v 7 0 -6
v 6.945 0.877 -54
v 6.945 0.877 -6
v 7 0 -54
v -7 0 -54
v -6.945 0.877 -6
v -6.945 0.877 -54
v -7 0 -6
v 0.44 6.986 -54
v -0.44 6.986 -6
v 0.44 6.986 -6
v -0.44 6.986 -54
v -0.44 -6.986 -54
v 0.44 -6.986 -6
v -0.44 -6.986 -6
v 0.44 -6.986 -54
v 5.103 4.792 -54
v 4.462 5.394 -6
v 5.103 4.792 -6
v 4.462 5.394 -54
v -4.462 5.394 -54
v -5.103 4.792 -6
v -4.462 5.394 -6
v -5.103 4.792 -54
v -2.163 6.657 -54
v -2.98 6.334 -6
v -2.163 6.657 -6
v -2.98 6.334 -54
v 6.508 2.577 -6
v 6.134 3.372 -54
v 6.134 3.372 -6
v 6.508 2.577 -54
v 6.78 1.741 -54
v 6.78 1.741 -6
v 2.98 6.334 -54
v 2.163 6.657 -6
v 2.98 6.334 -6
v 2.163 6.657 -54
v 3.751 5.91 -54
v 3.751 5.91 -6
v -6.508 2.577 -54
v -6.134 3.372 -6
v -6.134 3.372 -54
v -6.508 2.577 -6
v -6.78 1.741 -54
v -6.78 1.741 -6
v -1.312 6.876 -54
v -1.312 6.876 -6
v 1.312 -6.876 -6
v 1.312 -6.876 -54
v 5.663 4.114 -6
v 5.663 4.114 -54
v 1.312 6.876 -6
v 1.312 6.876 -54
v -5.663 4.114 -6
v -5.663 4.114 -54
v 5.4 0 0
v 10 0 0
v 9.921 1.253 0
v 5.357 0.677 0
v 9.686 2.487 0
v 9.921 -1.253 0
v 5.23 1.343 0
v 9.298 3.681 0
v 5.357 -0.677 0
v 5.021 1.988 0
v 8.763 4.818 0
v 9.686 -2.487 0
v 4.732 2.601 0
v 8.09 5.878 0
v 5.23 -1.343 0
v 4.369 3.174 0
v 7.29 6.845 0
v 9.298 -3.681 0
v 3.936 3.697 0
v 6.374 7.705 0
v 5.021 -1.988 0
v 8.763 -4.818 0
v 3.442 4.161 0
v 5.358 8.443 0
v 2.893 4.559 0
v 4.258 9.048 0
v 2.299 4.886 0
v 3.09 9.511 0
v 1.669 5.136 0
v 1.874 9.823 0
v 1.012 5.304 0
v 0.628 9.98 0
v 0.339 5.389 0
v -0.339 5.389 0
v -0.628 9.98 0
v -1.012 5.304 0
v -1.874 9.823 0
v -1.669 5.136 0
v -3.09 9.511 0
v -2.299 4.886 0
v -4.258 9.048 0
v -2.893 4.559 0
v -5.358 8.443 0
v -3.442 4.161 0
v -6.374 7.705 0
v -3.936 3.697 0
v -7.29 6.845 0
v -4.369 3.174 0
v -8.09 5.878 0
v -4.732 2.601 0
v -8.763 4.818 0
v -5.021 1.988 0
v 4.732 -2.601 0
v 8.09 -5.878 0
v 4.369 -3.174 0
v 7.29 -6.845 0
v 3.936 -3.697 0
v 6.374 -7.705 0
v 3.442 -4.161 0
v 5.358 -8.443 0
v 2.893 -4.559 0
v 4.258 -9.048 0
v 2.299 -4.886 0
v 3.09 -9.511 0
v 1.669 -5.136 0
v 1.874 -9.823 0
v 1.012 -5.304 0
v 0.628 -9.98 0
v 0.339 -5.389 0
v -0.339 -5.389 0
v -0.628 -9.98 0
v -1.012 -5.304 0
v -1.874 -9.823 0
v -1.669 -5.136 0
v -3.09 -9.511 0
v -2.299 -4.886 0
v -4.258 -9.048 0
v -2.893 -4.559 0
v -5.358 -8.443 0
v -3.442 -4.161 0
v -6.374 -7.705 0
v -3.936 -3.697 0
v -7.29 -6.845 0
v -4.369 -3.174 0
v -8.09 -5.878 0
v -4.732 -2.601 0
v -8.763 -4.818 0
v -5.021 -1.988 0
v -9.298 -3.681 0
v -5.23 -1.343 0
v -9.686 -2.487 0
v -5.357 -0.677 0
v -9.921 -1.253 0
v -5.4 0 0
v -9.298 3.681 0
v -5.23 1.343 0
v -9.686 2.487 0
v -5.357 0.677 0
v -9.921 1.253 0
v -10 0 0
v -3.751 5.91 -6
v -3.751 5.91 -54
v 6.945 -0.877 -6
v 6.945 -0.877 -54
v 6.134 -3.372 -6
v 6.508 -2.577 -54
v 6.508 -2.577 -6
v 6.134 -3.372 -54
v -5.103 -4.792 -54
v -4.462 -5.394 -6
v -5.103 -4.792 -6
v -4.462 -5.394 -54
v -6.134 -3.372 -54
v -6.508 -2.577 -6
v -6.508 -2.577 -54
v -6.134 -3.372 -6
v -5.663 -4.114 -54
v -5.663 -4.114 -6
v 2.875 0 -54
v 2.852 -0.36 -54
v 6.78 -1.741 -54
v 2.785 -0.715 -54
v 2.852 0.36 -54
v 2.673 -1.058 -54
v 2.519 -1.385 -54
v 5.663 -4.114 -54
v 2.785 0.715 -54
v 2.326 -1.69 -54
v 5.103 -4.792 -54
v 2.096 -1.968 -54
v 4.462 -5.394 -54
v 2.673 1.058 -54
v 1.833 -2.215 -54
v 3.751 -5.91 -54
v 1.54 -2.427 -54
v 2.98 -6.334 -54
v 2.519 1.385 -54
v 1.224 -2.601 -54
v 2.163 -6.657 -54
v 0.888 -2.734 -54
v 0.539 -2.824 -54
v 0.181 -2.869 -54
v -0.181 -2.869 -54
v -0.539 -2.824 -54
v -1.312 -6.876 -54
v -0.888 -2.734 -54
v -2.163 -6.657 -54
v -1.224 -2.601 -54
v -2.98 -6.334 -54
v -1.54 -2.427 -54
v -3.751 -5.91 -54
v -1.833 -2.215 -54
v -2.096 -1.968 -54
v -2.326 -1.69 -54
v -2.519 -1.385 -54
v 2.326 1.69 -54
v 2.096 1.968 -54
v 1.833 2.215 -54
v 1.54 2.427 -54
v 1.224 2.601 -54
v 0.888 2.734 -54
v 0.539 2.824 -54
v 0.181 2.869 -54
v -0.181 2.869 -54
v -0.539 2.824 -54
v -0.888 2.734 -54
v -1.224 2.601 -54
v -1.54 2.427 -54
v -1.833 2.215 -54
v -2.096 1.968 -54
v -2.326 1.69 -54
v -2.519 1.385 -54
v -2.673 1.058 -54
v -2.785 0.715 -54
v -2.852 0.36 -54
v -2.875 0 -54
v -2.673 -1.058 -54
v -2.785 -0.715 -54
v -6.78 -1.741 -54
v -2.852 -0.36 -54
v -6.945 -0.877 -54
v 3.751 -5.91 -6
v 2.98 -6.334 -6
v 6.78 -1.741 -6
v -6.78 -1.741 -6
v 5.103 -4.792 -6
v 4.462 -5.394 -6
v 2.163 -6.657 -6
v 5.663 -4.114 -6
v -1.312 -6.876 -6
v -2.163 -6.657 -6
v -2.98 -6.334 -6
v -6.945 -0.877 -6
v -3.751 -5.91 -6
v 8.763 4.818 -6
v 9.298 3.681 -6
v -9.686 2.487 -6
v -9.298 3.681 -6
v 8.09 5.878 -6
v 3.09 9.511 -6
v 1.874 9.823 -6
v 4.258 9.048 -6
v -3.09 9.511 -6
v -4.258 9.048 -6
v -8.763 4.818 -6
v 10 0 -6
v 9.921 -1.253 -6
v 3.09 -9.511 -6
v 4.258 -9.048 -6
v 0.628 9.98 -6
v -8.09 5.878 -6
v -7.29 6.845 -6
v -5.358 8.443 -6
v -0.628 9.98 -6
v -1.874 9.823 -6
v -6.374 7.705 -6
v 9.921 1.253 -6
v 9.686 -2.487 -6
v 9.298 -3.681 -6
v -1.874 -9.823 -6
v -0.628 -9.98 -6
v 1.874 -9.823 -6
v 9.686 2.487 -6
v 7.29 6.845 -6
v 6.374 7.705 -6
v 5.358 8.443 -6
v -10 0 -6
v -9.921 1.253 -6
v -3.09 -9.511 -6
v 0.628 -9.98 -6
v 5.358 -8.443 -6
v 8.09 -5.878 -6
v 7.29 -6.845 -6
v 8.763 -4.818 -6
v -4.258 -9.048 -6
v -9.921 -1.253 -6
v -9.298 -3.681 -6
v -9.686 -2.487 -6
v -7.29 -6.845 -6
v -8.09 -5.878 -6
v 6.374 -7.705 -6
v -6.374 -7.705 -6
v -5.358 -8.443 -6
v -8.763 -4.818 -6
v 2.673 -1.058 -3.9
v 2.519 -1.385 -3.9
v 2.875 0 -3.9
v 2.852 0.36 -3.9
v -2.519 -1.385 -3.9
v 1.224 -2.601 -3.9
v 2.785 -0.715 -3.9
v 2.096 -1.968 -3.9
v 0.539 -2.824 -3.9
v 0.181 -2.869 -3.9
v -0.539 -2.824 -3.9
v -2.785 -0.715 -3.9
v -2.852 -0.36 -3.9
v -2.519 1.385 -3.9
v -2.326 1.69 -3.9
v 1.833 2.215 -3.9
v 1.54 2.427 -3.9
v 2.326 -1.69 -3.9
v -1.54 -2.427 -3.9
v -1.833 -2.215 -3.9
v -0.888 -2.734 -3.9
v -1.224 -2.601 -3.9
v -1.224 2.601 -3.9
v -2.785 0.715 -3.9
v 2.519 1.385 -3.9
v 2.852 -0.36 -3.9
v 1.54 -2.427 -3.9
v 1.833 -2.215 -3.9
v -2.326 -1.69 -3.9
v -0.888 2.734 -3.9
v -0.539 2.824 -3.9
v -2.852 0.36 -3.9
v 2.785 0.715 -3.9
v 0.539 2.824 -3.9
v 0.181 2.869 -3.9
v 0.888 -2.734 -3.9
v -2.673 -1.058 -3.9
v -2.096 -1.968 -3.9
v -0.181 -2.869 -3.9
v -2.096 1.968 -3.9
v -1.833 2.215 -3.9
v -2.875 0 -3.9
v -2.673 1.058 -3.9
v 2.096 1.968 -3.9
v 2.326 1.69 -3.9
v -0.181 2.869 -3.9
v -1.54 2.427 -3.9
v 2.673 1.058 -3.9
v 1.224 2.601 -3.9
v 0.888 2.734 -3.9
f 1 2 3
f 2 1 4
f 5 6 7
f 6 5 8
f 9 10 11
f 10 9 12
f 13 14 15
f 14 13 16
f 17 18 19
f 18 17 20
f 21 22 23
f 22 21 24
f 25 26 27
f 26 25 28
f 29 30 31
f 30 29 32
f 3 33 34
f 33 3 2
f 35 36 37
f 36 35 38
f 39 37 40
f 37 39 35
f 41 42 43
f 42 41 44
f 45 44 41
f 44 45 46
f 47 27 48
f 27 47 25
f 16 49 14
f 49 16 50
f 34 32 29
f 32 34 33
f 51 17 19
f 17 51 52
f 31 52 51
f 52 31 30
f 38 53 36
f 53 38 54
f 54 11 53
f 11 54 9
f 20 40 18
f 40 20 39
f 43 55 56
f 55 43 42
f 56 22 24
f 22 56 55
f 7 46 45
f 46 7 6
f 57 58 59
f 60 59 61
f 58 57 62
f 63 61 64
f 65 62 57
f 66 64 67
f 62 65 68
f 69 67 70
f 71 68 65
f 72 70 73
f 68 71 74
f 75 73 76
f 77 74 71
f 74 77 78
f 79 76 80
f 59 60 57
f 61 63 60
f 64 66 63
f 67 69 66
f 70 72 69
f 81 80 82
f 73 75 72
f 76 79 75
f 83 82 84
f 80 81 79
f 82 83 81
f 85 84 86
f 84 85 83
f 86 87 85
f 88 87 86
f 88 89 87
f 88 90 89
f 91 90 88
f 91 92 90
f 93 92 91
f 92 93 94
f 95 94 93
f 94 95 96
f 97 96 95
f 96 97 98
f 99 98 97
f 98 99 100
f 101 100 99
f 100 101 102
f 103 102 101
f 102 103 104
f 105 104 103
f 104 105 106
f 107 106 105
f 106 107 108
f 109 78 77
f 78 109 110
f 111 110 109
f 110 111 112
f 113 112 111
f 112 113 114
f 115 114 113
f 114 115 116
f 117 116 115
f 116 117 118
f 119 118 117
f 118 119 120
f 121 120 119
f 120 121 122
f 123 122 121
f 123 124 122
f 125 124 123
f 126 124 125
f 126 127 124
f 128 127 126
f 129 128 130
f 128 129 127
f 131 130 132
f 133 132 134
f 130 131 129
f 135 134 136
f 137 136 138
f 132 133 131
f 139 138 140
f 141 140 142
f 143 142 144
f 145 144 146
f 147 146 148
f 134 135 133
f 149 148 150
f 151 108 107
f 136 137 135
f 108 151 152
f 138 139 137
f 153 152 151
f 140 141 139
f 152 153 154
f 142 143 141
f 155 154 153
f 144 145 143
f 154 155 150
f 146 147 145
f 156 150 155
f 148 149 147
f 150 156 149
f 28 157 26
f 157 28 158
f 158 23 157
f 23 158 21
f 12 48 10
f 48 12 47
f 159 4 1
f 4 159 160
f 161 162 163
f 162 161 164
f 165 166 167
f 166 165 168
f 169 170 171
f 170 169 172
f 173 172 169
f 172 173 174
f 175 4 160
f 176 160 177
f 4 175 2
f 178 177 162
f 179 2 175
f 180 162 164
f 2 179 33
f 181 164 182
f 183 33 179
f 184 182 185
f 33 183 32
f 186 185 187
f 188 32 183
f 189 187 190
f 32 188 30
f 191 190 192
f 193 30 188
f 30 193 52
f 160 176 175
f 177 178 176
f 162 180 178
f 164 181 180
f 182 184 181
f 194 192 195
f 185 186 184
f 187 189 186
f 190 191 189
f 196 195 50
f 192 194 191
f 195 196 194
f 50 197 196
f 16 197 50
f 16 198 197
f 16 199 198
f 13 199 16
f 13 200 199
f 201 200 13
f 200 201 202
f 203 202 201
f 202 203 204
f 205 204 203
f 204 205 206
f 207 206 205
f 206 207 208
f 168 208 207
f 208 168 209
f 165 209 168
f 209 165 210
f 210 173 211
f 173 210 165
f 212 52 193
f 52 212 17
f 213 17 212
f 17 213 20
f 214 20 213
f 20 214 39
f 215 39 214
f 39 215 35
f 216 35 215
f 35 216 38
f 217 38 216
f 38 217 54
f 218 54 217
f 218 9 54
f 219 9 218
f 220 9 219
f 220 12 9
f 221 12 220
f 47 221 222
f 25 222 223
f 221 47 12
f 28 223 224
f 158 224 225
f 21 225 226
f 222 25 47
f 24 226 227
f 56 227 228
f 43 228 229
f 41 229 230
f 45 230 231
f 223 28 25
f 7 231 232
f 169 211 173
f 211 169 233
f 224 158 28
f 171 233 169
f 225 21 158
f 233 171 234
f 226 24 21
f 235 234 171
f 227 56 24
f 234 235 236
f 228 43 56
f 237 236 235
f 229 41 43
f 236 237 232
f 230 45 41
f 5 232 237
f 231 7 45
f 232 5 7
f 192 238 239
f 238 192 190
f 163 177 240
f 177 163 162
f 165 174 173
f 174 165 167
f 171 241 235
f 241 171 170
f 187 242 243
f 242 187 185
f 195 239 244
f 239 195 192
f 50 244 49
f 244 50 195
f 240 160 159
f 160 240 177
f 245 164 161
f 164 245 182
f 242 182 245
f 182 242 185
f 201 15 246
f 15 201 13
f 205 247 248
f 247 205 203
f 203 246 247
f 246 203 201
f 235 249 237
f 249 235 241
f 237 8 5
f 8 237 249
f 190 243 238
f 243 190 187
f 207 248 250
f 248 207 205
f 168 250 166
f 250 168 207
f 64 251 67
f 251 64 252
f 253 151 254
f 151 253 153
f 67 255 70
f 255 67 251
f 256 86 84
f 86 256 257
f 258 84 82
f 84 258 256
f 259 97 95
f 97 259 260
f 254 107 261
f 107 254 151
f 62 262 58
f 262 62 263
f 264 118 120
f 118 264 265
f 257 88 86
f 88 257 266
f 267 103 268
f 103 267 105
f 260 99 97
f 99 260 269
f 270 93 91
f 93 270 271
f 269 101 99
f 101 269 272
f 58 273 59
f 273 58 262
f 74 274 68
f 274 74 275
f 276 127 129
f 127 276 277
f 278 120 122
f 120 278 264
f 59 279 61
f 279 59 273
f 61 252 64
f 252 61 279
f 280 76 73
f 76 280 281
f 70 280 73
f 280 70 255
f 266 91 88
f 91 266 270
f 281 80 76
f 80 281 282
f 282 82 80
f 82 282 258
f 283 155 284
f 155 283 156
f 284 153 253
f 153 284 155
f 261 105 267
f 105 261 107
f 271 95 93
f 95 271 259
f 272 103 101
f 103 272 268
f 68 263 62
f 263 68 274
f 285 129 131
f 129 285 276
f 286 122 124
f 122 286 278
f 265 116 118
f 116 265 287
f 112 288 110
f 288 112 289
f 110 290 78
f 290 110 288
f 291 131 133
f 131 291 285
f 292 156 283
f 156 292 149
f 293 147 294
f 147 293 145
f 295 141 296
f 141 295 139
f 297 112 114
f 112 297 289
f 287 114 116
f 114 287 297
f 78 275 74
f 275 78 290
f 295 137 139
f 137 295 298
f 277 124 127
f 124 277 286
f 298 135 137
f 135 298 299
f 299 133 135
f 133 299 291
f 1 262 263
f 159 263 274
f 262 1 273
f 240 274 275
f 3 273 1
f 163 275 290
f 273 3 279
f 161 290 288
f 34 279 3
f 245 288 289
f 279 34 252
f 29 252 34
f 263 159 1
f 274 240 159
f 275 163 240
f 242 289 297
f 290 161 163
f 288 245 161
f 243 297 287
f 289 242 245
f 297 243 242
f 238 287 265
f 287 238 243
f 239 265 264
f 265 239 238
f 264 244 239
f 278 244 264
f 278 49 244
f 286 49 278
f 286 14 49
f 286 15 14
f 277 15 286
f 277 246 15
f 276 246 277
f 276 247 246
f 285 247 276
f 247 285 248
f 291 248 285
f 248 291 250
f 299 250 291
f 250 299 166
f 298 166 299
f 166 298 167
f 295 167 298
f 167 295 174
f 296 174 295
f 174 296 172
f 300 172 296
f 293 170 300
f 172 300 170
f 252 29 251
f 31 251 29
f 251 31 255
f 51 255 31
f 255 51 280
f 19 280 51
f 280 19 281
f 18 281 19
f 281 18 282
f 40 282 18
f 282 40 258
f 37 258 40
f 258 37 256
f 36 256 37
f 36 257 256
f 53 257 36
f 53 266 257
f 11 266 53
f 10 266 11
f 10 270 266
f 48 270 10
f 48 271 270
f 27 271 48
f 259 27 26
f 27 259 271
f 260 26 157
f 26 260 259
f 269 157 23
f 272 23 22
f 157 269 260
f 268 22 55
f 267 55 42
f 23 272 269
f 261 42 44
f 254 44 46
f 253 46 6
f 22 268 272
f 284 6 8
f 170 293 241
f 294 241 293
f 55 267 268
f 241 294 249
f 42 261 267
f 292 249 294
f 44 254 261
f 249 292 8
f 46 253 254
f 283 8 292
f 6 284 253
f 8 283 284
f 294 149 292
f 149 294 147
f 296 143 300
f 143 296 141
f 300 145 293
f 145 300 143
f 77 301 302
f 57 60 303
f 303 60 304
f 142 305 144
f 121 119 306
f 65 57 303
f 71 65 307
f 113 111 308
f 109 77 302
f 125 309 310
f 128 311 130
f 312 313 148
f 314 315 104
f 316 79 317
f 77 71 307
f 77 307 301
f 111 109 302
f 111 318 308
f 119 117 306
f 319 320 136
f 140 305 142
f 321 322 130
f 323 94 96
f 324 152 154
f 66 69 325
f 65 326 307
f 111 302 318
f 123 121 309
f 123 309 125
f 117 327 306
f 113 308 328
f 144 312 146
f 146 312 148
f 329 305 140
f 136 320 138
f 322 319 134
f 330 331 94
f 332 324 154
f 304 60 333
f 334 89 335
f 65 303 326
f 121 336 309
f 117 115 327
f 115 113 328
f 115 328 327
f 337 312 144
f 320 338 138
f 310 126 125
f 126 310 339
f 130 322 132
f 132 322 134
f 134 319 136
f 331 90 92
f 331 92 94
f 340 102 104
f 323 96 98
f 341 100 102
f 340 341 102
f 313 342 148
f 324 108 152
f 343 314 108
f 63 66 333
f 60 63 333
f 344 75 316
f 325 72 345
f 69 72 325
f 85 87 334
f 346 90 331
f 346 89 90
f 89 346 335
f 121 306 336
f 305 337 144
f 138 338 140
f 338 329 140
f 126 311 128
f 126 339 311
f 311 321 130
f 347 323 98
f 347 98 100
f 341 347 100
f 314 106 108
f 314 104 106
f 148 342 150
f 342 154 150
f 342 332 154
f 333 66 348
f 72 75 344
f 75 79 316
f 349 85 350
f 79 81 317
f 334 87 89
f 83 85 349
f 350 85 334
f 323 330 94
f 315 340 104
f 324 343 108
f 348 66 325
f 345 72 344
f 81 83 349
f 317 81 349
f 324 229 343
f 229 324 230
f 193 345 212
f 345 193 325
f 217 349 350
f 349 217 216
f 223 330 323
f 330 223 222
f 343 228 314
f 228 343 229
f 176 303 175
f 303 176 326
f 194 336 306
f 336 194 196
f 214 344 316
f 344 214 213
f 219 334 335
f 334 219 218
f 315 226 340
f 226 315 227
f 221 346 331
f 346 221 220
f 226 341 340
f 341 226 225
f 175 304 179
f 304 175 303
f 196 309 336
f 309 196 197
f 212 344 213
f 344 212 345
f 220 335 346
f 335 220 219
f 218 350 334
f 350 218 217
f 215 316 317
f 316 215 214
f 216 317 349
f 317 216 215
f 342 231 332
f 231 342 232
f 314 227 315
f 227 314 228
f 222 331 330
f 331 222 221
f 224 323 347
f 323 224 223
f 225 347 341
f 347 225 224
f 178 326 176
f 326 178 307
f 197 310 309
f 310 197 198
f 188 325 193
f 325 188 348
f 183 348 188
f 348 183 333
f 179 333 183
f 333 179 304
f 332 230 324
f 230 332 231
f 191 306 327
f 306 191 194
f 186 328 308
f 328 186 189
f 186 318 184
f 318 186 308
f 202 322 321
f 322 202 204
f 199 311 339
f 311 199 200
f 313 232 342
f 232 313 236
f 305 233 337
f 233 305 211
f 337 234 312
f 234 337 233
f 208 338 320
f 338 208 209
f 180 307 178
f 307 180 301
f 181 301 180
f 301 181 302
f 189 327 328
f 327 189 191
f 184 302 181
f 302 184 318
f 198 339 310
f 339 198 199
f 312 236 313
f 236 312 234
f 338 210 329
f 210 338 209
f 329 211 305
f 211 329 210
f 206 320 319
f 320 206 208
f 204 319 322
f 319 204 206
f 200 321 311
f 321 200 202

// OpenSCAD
$fn = 50;


difference() {
	union() {
		translate(v = [0, 0, -54.0000000000]) {
			cylinder(h = 54, r = 7.0000000000);
		}
		translate(v = [0, 0, -6.0000000000]) {
			cylinder(h = 6, r = 10.0000000000);
		}
	}
	union() {
		translate(v = [0, 0, 0]) {
			rotate(a = [0, 0, 0]) {
				difference() {
					union() {
						#translate(v = [0, 0, -54.0000000000]) {
							cylinder(h = 54, r = 2.6000000000);
						}
						#translate(v = [0, 0, -3.9000000000]) {
							cylinder(h = 3.9000000000, r = 7.0000000000, r1 = 2.8750000000, r2 = 5.4000000000);
						}
						#translate(v = [0, 0, -54.0000000000]) {
							cylinder(h = 54, r = 2.8750000000);
						}
						#translate(v = [0, 0, -54.0000000000]) {
							cylinder(h = 54, r = 2.6000000000);
						}
					}
					union();
				}
			}
		}
	}
}
